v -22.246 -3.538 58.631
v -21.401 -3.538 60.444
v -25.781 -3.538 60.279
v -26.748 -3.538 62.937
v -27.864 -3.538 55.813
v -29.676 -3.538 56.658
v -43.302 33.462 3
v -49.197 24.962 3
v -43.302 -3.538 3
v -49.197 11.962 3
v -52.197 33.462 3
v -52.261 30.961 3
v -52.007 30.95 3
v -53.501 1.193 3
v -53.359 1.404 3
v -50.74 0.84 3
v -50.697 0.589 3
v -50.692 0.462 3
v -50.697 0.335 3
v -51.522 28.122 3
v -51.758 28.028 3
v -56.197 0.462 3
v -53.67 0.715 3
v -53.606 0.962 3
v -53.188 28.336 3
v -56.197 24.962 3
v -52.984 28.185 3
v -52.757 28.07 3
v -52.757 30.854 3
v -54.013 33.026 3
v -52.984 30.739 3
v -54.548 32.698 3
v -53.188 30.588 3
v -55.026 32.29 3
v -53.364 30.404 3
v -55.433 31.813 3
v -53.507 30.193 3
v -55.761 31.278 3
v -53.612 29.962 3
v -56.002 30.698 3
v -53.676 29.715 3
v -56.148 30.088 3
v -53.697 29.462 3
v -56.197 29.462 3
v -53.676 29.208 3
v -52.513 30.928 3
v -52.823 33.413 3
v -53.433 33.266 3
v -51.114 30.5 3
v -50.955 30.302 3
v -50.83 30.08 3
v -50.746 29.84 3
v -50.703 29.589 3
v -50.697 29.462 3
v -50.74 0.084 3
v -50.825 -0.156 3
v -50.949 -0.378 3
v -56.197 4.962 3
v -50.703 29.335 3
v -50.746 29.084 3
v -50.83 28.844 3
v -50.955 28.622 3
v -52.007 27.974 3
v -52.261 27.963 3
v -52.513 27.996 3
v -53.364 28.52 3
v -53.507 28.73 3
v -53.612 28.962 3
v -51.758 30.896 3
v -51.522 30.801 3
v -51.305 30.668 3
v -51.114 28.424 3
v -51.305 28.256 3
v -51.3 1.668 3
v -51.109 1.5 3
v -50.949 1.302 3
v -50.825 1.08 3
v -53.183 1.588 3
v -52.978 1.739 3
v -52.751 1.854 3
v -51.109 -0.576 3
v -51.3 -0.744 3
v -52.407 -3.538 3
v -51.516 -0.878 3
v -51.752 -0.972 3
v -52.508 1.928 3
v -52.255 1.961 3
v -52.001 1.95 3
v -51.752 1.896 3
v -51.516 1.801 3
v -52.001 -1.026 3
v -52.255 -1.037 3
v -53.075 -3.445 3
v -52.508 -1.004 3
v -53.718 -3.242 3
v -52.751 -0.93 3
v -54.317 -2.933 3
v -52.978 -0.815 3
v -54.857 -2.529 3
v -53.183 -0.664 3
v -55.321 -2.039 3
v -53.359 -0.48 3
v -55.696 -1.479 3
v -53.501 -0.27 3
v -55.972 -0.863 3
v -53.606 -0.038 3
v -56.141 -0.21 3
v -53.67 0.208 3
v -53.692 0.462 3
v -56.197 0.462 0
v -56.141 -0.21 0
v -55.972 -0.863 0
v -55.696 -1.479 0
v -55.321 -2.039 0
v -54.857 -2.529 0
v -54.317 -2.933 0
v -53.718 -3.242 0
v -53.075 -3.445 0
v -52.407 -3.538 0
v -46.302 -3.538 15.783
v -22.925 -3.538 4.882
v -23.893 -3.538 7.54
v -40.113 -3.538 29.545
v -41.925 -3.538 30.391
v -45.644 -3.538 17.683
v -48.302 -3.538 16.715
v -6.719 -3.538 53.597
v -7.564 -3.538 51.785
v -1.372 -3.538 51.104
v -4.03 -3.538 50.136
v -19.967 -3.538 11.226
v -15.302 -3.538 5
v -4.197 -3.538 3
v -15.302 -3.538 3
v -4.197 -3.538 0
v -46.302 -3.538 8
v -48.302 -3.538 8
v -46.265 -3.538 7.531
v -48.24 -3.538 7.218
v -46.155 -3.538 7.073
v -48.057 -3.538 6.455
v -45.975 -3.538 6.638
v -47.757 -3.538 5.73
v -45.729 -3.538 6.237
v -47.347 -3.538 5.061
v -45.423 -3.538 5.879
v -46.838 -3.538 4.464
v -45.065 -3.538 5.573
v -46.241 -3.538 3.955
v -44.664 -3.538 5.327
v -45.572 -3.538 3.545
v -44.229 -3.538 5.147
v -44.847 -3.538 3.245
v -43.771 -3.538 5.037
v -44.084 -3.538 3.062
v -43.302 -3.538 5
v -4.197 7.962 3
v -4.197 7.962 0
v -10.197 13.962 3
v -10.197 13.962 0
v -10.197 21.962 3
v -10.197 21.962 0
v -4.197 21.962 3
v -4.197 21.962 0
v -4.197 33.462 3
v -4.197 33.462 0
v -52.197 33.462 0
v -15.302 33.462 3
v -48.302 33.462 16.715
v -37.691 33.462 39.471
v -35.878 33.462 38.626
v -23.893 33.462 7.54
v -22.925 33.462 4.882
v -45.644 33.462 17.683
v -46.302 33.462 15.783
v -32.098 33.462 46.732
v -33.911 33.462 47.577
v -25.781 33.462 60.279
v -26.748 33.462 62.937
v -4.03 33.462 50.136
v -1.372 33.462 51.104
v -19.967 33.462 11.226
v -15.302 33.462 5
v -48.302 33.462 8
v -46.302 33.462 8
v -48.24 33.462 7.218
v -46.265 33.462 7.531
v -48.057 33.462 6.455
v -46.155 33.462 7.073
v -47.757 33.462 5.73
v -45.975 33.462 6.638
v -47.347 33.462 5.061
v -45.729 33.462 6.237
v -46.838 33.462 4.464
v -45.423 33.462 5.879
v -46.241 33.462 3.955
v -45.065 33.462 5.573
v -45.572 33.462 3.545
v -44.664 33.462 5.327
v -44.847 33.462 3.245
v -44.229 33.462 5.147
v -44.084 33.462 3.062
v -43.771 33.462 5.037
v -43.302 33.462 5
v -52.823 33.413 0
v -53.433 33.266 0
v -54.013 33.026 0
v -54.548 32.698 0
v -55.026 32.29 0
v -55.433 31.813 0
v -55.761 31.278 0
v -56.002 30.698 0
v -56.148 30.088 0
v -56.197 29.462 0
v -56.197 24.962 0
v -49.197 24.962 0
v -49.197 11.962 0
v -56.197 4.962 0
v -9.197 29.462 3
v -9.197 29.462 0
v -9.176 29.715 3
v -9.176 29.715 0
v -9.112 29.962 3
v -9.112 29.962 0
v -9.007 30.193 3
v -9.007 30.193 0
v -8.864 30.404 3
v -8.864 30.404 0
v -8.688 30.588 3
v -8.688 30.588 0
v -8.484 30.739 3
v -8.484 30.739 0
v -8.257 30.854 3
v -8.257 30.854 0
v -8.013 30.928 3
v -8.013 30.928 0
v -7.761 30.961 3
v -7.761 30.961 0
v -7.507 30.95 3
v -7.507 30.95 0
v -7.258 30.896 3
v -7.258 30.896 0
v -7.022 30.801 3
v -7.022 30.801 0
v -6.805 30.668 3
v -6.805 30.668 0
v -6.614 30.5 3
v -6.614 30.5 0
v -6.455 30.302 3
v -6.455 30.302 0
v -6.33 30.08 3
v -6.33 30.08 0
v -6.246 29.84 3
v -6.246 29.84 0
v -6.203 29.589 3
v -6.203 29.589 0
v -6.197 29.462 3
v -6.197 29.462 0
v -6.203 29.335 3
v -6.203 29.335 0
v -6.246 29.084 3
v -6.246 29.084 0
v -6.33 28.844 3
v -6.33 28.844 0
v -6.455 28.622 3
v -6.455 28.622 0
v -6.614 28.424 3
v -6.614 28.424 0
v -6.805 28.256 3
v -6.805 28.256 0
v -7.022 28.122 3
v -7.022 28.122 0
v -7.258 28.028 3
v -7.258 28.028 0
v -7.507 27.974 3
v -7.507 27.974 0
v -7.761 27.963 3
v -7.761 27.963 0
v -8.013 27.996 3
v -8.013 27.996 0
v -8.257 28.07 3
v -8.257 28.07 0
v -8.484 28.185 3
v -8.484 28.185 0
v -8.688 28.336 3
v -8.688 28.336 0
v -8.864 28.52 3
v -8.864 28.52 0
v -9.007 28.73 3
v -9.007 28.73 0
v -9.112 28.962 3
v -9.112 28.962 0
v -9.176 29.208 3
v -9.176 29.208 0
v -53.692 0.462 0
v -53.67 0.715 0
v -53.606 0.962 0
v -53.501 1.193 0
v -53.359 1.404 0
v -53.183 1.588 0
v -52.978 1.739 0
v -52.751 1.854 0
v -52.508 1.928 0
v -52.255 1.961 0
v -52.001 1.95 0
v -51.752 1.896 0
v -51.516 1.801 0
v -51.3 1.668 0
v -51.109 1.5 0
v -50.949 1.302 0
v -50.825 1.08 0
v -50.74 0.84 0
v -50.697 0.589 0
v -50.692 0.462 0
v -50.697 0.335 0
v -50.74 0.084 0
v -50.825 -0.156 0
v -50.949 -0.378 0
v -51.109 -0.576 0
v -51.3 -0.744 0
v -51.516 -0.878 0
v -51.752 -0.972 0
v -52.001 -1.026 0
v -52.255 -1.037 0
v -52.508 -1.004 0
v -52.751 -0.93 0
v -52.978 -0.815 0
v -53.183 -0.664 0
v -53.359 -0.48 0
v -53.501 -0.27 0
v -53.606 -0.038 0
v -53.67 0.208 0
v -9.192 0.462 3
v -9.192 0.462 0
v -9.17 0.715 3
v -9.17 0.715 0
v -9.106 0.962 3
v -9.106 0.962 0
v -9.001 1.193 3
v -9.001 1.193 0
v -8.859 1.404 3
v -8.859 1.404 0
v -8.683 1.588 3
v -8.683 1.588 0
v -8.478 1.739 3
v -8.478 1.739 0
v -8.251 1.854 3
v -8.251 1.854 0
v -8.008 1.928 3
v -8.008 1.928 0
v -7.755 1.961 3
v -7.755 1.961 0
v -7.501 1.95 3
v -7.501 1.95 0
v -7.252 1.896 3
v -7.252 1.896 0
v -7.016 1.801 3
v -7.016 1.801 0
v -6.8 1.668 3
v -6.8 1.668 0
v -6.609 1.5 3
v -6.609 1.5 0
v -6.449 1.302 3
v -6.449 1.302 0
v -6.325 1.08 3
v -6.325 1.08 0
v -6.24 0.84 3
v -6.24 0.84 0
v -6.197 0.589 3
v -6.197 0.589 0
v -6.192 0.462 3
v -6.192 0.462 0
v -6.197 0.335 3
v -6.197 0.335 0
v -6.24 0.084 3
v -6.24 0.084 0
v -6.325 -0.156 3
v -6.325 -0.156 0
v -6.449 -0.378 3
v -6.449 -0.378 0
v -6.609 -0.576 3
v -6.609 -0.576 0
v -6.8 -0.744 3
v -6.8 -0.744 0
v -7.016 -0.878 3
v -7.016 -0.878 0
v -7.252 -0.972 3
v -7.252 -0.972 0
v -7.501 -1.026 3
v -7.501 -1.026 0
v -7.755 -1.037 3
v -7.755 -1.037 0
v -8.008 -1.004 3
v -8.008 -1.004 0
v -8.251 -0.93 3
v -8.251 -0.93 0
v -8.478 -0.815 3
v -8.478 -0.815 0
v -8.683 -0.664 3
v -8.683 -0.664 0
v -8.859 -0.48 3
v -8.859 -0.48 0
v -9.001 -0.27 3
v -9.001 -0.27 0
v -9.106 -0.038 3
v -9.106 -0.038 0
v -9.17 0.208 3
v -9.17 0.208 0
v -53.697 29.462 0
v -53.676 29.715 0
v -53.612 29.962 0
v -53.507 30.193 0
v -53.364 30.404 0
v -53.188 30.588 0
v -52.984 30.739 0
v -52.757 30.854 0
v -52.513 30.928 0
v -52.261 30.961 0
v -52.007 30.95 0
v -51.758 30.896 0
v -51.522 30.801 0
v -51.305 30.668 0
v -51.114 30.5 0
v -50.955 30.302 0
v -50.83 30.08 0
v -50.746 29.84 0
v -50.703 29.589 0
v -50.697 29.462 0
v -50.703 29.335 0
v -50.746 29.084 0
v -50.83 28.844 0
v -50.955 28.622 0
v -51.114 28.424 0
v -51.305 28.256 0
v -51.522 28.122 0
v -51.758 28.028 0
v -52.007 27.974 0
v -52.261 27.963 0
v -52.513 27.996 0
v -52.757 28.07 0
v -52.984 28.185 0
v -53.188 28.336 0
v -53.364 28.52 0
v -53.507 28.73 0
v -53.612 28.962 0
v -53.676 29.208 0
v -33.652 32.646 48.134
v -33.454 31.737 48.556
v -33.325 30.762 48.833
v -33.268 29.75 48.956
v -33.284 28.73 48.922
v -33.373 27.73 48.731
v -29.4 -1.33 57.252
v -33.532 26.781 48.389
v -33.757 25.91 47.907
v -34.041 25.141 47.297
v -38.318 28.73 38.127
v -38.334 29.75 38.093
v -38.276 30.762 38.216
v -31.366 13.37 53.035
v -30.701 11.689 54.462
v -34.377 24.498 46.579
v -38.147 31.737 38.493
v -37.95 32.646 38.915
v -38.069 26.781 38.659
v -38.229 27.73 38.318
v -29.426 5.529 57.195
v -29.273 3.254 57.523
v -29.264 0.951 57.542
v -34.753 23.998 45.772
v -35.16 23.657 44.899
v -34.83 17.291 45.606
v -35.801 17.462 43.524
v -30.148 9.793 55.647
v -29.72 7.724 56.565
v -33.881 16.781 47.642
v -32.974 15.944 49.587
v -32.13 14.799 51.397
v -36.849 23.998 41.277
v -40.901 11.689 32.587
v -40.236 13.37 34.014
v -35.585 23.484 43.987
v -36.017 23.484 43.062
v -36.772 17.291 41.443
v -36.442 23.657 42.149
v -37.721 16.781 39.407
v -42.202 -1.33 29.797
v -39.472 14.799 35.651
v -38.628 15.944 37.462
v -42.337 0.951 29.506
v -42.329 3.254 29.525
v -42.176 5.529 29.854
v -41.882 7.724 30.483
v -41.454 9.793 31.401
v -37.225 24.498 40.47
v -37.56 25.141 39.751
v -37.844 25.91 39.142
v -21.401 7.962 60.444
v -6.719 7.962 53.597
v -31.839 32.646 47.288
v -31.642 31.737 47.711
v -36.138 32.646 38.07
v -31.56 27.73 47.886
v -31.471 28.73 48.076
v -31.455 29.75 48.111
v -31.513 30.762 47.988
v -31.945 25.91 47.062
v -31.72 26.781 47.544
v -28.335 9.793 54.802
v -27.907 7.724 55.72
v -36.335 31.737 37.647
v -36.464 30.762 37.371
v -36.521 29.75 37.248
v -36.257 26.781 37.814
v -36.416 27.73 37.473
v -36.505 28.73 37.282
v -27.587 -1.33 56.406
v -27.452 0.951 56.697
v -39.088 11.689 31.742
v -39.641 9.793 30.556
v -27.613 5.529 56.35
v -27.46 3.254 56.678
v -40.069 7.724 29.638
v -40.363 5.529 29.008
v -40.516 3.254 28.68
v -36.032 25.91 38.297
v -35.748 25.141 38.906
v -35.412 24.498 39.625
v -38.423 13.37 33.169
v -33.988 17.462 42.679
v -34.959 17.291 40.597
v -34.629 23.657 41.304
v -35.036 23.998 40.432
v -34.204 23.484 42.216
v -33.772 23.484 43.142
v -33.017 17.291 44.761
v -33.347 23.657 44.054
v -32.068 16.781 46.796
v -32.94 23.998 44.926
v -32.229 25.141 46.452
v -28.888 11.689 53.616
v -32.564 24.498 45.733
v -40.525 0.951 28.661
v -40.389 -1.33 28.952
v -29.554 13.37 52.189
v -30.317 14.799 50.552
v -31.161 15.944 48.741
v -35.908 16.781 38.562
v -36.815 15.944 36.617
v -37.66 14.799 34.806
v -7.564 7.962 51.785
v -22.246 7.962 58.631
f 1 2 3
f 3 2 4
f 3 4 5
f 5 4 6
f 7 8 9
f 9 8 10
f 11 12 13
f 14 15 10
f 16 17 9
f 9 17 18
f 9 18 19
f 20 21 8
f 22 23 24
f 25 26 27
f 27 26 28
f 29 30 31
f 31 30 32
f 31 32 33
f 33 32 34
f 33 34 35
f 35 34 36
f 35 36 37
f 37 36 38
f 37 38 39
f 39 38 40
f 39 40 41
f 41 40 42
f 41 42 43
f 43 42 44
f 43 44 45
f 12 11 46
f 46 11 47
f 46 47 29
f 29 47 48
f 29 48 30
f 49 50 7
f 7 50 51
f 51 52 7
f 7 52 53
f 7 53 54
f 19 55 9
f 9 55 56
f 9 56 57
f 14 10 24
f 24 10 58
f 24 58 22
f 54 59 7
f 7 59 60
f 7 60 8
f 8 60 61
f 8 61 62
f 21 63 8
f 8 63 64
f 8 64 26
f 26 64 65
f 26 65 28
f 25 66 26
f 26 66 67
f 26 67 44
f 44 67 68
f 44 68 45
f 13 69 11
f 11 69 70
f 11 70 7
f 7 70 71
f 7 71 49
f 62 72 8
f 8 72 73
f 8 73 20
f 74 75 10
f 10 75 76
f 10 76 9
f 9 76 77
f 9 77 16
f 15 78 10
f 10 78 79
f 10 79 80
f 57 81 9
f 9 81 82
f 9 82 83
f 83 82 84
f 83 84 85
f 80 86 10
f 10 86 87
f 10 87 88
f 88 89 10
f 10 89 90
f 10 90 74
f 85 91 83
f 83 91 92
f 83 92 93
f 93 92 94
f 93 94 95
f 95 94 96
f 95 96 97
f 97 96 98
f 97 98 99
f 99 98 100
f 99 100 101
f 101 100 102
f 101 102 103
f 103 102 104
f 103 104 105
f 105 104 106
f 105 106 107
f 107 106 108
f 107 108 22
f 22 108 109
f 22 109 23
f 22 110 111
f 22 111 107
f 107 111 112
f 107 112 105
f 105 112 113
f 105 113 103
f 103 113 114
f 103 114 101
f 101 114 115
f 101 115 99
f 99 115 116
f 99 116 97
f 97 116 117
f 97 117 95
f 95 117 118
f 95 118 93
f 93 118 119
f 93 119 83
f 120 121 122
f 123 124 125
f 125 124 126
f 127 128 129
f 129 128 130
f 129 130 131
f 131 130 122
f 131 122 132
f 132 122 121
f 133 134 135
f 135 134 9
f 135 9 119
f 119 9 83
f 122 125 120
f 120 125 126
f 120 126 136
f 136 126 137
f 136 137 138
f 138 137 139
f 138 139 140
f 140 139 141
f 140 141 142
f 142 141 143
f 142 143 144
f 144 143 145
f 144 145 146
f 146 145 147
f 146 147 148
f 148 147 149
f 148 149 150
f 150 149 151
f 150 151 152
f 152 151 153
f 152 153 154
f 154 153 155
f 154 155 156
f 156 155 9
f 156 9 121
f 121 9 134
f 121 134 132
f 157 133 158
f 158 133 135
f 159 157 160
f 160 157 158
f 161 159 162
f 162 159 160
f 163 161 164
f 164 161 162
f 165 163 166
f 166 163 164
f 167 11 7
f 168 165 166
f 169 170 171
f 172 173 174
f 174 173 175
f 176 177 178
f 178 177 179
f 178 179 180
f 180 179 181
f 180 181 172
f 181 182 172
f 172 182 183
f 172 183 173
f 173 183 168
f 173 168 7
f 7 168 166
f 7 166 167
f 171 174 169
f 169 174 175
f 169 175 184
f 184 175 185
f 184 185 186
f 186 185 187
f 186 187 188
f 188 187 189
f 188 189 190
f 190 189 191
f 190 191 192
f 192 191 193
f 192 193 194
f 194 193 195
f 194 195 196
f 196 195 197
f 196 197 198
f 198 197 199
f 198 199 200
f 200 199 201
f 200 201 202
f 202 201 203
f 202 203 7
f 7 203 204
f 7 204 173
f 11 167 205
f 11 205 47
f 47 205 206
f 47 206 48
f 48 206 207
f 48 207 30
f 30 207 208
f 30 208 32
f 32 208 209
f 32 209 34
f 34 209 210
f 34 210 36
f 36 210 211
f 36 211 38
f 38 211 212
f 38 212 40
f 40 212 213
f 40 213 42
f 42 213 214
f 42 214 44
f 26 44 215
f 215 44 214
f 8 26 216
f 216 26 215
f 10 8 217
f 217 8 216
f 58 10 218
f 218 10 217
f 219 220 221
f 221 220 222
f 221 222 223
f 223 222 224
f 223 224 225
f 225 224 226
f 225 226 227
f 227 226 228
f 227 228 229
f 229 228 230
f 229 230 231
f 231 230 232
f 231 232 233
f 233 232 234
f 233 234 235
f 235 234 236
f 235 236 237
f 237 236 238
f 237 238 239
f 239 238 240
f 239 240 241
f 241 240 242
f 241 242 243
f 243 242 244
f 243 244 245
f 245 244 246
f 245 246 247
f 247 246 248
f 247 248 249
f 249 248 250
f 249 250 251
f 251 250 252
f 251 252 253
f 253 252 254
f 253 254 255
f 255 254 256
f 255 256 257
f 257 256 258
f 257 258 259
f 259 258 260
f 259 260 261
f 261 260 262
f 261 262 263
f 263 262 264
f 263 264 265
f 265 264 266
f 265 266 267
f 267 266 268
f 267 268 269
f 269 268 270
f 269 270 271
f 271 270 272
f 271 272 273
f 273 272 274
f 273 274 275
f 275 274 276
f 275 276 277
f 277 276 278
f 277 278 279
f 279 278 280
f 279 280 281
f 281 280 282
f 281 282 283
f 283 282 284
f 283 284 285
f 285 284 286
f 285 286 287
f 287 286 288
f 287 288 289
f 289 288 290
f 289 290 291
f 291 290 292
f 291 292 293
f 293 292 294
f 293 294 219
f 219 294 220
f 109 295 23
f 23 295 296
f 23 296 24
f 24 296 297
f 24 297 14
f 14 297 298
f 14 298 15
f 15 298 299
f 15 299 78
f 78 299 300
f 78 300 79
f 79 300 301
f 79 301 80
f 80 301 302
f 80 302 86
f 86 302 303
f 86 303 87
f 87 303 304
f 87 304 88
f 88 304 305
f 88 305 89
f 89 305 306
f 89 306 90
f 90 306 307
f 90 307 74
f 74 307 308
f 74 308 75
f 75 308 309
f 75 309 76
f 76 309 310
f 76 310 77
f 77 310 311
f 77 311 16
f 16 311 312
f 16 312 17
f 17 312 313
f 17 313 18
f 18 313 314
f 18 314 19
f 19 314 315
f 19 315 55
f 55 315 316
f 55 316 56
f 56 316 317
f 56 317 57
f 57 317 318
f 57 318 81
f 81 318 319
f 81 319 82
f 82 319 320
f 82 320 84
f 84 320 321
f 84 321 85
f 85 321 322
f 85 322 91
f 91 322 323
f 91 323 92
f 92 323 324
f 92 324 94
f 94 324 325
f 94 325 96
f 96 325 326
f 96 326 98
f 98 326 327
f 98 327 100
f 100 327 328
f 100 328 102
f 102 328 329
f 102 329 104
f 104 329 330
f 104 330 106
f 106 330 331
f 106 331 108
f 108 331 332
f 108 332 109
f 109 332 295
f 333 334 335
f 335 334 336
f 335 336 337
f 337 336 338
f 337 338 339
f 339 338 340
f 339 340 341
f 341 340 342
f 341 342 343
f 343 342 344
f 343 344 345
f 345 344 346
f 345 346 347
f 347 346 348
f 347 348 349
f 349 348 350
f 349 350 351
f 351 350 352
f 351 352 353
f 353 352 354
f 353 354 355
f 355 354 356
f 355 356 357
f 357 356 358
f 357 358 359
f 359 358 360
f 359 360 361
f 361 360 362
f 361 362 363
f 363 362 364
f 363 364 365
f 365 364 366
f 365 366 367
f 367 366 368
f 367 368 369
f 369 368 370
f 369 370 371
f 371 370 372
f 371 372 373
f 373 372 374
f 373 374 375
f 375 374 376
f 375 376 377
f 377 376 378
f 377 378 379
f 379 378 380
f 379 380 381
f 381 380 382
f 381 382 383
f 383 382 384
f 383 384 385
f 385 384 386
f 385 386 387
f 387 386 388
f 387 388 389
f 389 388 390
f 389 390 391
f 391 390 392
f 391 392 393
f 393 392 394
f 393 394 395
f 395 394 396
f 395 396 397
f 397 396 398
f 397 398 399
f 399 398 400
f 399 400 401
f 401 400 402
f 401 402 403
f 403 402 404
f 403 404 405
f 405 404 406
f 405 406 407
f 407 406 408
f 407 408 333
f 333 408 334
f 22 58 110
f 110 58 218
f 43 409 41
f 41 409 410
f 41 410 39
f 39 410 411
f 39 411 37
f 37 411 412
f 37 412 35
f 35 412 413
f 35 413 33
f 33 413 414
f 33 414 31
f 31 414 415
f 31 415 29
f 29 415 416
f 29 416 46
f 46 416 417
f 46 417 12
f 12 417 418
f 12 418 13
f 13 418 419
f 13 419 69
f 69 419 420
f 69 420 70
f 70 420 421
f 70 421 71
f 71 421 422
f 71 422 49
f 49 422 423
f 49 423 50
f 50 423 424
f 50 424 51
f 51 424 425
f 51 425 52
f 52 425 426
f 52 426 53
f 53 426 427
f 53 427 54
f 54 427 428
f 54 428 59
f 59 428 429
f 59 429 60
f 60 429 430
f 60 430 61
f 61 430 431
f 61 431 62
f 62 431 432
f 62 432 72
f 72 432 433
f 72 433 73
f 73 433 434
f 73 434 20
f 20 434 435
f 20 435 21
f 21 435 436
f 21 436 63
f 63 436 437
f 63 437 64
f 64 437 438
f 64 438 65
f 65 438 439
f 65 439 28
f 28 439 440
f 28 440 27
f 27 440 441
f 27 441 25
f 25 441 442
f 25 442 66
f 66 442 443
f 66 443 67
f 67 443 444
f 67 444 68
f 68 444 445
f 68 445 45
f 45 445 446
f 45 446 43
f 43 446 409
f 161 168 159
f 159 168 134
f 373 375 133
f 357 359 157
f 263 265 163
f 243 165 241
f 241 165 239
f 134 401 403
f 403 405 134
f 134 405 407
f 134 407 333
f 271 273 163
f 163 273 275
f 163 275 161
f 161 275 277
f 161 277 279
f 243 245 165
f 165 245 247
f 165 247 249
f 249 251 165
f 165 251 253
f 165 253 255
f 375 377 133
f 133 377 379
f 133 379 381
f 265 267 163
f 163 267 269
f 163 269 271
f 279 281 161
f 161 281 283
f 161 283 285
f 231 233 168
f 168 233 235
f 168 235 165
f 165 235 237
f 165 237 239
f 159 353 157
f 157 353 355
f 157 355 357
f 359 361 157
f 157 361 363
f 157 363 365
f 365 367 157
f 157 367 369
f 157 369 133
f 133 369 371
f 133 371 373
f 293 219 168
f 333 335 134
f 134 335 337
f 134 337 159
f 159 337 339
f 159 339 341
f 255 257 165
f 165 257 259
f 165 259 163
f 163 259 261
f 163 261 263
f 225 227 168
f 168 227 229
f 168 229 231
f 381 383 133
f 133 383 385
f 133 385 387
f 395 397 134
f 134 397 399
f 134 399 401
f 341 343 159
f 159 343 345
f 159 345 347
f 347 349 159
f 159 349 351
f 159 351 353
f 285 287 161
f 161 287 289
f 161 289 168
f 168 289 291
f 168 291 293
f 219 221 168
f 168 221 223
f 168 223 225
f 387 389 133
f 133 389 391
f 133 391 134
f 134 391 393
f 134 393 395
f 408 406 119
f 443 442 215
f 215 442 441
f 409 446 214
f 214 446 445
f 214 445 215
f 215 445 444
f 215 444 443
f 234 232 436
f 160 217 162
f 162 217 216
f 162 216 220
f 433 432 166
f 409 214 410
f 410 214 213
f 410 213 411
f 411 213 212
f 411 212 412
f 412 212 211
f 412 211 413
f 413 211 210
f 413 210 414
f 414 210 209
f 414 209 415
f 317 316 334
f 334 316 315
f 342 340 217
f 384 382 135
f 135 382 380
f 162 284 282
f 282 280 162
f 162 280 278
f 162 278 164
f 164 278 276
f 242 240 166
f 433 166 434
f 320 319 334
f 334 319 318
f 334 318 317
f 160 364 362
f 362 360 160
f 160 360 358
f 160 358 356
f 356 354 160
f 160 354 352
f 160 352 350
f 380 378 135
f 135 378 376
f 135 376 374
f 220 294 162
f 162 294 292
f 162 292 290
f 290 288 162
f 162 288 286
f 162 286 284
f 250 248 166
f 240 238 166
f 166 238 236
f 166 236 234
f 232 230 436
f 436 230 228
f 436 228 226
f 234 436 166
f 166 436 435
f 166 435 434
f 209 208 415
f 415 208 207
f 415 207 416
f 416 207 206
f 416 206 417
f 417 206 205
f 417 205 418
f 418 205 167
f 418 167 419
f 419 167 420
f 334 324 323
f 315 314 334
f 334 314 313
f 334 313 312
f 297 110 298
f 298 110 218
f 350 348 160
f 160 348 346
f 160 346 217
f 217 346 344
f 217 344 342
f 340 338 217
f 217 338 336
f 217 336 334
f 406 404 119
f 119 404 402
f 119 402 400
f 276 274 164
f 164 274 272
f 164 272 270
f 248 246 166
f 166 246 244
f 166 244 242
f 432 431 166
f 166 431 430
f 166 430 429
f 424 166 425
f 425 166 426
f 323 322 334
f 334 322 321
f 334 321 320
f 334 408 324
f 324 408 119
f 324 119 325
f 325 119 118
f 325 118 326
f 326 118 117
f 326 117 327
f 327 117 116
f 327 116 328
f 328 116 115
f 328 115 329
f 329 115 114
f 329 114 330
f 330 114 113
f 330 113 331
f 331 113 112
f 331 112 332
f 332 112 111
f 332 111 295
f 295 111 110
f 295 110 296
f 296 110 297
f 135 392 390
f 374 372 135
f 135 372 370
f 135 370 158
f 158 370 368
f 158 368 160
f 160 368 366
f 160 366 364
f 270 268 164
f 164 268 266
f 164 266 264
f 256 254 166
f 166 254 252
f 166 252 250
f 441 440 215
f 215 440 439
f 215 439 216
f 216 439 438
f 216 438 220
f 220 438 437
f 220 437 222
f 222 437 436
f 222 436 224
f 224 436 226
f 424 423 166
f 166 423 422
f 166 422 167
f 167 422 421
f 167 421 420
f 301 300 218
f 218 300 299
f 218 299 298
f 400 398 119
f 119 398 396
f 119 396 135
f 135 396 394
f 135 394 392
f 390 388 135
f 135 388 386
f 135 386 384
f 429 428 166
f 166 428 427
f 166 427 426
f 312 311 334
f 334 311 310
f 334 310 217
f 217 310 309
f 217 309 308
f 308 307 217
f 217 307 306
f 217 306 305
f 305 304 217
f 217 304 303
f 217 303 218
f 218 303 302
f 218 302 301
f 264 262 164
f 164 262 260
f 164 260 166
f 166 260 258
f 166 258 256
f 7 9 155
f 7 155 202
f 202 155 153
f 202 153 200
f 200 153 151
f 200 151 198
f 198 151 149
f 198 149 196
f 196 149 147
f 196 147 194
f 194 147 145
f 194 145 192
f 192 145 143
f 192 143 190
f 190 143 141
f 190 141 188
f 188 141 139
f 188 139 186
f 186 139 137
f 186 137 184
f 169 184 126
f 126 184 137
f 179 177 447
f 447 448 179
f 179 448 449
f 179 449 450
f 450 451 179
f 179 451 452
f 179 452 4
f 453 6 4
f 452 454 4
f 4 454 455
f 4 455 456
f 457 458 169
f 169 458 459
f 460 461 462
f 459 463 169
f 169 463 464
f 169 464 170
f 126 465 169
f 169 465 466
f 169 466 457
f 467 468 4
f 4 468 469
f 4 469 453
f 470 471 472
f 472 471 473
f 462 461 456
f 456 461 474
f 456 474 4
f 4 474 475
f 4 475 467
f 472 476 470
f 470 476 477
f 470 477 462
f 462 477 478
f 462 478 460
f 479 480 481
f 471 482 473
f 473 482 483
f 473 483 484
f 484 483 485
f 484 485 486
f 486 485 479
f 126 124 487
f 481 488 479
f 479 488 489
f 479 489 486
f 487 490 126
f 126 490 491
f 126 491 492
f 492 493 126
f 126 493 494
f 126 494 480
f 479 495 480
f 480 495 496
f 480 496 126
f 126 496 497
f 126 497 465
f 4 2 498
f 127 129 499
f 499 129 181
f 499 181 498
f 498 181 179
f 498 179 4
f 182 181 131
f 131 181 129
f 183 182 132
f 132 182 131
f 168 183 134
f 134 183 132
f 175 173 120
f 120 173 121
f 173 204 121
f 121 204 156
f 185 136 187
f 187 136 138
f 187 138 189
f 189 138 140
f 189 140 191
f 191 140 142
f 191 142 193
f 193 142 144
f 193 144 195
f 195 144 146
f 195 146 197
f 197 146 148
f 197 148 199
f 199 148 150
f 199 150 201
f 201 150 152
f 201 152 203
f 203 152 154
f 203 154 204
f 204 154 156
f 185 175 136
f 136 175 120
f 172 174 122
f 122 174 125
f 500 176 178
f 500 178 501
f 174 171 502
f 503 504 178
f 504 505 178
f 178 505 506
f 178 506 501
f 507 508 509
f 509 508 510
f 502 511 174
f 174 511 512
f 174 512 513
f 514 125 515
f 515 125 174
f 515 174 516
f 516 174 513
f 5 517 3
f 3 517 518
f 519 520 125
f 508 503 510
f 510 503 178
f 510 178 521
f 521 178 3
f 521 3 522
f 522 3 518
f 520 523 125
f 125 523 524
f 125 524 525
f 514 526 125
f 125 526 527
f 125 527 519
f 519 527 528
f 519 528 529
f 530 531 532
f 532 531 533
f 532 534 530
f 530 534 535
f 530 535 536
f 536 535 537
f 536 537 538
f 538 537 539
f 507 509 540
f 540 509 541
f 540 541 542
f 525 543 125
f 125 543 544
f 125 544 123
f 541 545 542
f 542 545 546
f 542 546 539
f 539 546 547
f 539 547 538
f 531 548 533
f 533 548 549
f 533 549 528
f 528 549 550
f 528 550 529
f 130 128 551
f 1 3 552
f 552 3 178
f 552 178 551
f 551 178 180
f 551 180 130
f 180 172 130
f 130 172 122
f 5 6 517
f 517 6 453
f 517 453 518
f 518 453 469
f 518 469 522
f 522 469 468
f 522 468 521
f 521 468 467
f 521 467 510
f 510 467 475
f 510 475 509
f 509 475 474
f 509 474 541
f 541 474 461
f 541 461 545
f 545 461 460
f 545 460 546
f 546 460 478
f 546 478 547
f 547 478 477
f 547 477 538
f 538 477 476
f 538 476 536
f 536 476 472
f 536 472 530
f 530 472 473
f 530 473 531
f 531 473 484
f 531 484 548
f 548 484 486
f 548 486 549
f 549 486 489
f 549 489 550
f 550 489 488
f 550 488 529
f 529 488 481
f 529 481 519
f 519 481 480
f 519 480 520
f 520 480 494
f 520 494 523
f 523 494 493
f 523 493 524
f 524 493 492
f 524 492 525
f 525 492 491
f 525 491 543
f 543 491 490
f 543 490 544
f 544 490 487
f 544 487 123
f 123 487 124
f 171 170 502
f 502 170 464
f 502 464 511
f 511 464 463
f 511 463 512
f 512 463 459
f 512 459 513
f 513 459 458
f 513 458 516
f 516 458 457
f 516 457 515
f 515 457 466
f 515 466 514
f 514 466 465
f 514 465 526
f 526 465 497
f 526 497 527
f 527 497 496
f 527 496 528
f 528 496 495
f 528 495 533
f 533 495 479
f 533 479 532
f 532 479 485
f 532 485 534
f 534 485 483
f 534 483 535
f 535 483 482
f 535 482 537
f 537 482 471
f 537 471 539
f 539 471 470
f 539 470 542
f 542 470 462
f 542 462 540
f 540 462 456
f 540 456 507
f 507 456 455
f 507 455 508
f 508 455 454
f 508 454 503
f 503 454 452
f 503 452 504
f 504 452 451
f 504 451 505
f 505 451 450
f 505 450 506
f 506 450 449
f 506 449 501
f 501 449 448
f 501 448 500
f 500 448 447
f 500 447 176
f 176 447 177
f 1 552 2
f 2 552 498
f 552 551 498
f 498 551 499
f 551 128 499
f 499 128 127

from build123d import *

# Parameters (mm, degrees)
CROQUIS1_R              = 1.5
SALIENTE_EXTRUIR1_DEPTH = 3
SALIENTE_EXTRUIR2_DEPTH = 37
CROQUIS4_R              = 15.5
CROQUIS4_R_2            = 6
CORTAR_EXTRUIR1_DEPTH   = 2
CORTAR_EXTRUIR2_DEPTH   = 2


with BuildPart() as part:
    # Croquis1 → Saliente-Extruir1 (new body)
    with BuildSketch(Plane.XY):
        with BuildLine():
            Line((-49.197309417, 11.961883408), (-56.197309417, 4.961883408))
            Line((-56.197309417, 4.961883408), (-56.197309417, 0.461883408))
            ThreePointArc((-56.197309417, 0.461883408), (-55.099110766, -2.293519818), (-52.406664651, -3.538116592))
            Line((-52.406664651, -3.538116592), (-4.197309417, -3.538116592))
            Line((-4.197309417, -3.538116592), (-4.197309417, 7.961883408))
            Line((-4.197309417, 7.961883408), (-10.197309417, 13.961883408))
            Line((-10.197309417, 13.961883408), (-10.197309417, 21.961883408))
            Line((-10.197309417, 21.961883408), (-4.197309417, 21.961883408))
            Line((-4.197309417, 21.961883408), (-4.197309417, 33.461883408))
            Line((-4.197309417, 33.461883408), (-52.197309417, 33.461883408))
            ThreePointArc((-52.197309417, 33.461883408), (-55.025736542, 32.290310533), (-56.197309417, 29.461883408))
            Line((-56.197309417, 29.461883408), (-56.197309417, 24.961883408))
            Line((-56.197309417, 24.961883408), (-49.197309417, 24.961883408))
            Line((-49.197309417, 24.961883408), (-49.197309417, 11.961883408))
        make_face()
        with Locations((-52.19152813, 0.461883408)):
            Circle(CROQUIS1_R, mode=Mode.SUBTRACT)
        with Locations((-7.69152813, 0.461883408)):
            Circle(CROQUIS1_R, mode=Mode.SUBTRACT)
        with Locations((-52.197309417, 29.461883408)):
            Circle(CROQUIS1_R, mode=Mode.SUBTRACT)
        with Locations((-7.697309417, 29.461882832)):
            Circle(CROQUIS1_R, mode=Mode.SUBTRACT)
    extrude(amount=SALIENTE_EXTRUIR1_DEPTH)

    # Croquis3 → Saliente-Extruir2 (add)
    with BuildSketch(Plane.XZ.offset(3.538116592)):
        with BuildLine():
            Line((-28.301987034, 3), (-15.301987034, 3))
            Line((-15.301987034, 3), (-15.301987034, 5))
            Line((-15.301987034, 5), (-19.967041165, 11.226302412))
            Line((-19.967041165, 11.226302412), (-1.371837648, 51.103845041))
            Line((-1.371837648, 51.103845041), (-26.748455685, 62.93715637))
            Line((-26.748455685, 62.93715637), (-48.301987034, 16.715459231))
            Line((-48.301987034, 16.715459231), (-48.301987034, 8))
            ThreePointArc((-48.301987034, 8), (-46.83752094, 4.464466094), (-43.301987034, 3))
            Line((-43.301987034, 3), (-28.301987034, 3))
        make_face()
        Polygon((-45.644134936, 17.682838282), (-25.781076635, 60.279304272), (-4.029689746, 50.136465991), (-23.892748048, 7.54), align=None, mode=Mode.SUBTRACT)
        with BuildLine():
            Line((-43.301987034, 5), (-22.925368997, 4.882147902))
            Line((-22.925368997, 4.882147902), (-46.301987034, 15.782843915))
            Line((-46.301987034, 15.782843915), (-46.301987034, 8))
            ThreePointArc((-46.301987034, 8), (-45.423307378, 5.878679656), (-43.301987034, 5))
        make_face(mode=Mode.SUBTRACT)
    extrude(amount=-SALIENTE_EXTRUIR2_DEPTH)

    # Croquis4 → Cortar-Extruir1 (cut)
    with BuildSketch(Plane(origin=(-46.07734524, 0, 21.486218953), x_dir=(0.42261826174069334, 0, 0.9063077870366529), z_dir=(-0.9063077870366529, 0, 0.42261826174069334))):
        with Locations((24.316351755, 1.961883408)):
            Circle(CROQUIS4_R)
        with Locations((24.316351755, 29.461883408)):
            Circle(CROQUIS4_R_2)
    extrude(amount=-CORTAR_EXTRUIR1_DEPTH, mode=Mode.SUBTRACT)

    # Croquis5 → Cortar-Extruir2 (cut)
    with BuildSketch(Plane(origin=(19.328889555, 0, 41.450937417), x_dir=(0.9063077870366526, 0, -0.42261826174069395), z_dir=(0.42261826174069395, 0, 0.9063077870366526))):
        Polygon((-36.840725303, -3.538116592), (-44.940725303, -3.538116592), (-44.940725303, 7.961883408), (-28.740725303, 7.961883408), (-28.740725303, -3.538116592), align=None)
    extrude(amount=-CORTAR_EXTRUIR2_DEPTH, mode=Mode.SUBTRACT)


solid = part.part
